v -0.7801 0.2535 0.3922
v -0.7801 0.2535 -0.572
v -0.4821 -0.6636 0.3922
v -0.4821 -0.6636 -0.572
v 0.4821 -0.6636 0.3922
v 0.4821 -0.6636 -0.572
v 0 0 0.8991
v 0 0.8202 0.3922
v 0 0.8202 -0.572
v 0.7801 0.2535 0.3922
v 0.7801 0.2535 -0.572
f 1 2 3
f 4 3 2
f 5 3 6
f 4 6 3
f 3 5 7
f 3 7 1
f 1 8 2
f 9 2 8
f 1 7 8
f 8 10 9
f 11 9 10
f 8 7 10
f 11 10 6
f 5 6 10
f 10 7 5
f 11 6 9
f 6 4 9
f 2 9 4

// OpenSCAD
polyhedron( points = [[-0.482119432651578, -0.663580470673841, 0.392205814132849], [-0.780085628654245, 0.253465185566413, 0.392205814132849], [-1.1956479418465e-10, 0.820230570334409, 0.392205814132849], [0.780085628506151, 0.253465185566413, 0.392205814132849], [0.482119432650791, -0.663580470673841, 0.392205814132849], [-0.482119432608287, -0.663580470614256, -0.57203305116952], [-0.780085628605918, 0.253465185610501, -0.572033051066643], [7.32579446596862e-11, 0.820230570120666, -0.57203305116952], [0.780085628734001, 0.253465185327222, -0.572033051126229], [0.482119432650791, -0.663580470614256, -0.572033051212814], [2.46005539546439e-11, 5.05685903993515e-11, 0.899136185080482]], faces = [[0, 1, 6, 5], [0, 5, 9, 4], [0, 4, 10], [0, 10, 1], [1, 2, 7, 6], [1, 10, 2], [2, 3, 8, 7], [2, 10, 3], [3, 4, 9, 8], [3, 10, 4], [5, 6, 7, 8, 9]]);
